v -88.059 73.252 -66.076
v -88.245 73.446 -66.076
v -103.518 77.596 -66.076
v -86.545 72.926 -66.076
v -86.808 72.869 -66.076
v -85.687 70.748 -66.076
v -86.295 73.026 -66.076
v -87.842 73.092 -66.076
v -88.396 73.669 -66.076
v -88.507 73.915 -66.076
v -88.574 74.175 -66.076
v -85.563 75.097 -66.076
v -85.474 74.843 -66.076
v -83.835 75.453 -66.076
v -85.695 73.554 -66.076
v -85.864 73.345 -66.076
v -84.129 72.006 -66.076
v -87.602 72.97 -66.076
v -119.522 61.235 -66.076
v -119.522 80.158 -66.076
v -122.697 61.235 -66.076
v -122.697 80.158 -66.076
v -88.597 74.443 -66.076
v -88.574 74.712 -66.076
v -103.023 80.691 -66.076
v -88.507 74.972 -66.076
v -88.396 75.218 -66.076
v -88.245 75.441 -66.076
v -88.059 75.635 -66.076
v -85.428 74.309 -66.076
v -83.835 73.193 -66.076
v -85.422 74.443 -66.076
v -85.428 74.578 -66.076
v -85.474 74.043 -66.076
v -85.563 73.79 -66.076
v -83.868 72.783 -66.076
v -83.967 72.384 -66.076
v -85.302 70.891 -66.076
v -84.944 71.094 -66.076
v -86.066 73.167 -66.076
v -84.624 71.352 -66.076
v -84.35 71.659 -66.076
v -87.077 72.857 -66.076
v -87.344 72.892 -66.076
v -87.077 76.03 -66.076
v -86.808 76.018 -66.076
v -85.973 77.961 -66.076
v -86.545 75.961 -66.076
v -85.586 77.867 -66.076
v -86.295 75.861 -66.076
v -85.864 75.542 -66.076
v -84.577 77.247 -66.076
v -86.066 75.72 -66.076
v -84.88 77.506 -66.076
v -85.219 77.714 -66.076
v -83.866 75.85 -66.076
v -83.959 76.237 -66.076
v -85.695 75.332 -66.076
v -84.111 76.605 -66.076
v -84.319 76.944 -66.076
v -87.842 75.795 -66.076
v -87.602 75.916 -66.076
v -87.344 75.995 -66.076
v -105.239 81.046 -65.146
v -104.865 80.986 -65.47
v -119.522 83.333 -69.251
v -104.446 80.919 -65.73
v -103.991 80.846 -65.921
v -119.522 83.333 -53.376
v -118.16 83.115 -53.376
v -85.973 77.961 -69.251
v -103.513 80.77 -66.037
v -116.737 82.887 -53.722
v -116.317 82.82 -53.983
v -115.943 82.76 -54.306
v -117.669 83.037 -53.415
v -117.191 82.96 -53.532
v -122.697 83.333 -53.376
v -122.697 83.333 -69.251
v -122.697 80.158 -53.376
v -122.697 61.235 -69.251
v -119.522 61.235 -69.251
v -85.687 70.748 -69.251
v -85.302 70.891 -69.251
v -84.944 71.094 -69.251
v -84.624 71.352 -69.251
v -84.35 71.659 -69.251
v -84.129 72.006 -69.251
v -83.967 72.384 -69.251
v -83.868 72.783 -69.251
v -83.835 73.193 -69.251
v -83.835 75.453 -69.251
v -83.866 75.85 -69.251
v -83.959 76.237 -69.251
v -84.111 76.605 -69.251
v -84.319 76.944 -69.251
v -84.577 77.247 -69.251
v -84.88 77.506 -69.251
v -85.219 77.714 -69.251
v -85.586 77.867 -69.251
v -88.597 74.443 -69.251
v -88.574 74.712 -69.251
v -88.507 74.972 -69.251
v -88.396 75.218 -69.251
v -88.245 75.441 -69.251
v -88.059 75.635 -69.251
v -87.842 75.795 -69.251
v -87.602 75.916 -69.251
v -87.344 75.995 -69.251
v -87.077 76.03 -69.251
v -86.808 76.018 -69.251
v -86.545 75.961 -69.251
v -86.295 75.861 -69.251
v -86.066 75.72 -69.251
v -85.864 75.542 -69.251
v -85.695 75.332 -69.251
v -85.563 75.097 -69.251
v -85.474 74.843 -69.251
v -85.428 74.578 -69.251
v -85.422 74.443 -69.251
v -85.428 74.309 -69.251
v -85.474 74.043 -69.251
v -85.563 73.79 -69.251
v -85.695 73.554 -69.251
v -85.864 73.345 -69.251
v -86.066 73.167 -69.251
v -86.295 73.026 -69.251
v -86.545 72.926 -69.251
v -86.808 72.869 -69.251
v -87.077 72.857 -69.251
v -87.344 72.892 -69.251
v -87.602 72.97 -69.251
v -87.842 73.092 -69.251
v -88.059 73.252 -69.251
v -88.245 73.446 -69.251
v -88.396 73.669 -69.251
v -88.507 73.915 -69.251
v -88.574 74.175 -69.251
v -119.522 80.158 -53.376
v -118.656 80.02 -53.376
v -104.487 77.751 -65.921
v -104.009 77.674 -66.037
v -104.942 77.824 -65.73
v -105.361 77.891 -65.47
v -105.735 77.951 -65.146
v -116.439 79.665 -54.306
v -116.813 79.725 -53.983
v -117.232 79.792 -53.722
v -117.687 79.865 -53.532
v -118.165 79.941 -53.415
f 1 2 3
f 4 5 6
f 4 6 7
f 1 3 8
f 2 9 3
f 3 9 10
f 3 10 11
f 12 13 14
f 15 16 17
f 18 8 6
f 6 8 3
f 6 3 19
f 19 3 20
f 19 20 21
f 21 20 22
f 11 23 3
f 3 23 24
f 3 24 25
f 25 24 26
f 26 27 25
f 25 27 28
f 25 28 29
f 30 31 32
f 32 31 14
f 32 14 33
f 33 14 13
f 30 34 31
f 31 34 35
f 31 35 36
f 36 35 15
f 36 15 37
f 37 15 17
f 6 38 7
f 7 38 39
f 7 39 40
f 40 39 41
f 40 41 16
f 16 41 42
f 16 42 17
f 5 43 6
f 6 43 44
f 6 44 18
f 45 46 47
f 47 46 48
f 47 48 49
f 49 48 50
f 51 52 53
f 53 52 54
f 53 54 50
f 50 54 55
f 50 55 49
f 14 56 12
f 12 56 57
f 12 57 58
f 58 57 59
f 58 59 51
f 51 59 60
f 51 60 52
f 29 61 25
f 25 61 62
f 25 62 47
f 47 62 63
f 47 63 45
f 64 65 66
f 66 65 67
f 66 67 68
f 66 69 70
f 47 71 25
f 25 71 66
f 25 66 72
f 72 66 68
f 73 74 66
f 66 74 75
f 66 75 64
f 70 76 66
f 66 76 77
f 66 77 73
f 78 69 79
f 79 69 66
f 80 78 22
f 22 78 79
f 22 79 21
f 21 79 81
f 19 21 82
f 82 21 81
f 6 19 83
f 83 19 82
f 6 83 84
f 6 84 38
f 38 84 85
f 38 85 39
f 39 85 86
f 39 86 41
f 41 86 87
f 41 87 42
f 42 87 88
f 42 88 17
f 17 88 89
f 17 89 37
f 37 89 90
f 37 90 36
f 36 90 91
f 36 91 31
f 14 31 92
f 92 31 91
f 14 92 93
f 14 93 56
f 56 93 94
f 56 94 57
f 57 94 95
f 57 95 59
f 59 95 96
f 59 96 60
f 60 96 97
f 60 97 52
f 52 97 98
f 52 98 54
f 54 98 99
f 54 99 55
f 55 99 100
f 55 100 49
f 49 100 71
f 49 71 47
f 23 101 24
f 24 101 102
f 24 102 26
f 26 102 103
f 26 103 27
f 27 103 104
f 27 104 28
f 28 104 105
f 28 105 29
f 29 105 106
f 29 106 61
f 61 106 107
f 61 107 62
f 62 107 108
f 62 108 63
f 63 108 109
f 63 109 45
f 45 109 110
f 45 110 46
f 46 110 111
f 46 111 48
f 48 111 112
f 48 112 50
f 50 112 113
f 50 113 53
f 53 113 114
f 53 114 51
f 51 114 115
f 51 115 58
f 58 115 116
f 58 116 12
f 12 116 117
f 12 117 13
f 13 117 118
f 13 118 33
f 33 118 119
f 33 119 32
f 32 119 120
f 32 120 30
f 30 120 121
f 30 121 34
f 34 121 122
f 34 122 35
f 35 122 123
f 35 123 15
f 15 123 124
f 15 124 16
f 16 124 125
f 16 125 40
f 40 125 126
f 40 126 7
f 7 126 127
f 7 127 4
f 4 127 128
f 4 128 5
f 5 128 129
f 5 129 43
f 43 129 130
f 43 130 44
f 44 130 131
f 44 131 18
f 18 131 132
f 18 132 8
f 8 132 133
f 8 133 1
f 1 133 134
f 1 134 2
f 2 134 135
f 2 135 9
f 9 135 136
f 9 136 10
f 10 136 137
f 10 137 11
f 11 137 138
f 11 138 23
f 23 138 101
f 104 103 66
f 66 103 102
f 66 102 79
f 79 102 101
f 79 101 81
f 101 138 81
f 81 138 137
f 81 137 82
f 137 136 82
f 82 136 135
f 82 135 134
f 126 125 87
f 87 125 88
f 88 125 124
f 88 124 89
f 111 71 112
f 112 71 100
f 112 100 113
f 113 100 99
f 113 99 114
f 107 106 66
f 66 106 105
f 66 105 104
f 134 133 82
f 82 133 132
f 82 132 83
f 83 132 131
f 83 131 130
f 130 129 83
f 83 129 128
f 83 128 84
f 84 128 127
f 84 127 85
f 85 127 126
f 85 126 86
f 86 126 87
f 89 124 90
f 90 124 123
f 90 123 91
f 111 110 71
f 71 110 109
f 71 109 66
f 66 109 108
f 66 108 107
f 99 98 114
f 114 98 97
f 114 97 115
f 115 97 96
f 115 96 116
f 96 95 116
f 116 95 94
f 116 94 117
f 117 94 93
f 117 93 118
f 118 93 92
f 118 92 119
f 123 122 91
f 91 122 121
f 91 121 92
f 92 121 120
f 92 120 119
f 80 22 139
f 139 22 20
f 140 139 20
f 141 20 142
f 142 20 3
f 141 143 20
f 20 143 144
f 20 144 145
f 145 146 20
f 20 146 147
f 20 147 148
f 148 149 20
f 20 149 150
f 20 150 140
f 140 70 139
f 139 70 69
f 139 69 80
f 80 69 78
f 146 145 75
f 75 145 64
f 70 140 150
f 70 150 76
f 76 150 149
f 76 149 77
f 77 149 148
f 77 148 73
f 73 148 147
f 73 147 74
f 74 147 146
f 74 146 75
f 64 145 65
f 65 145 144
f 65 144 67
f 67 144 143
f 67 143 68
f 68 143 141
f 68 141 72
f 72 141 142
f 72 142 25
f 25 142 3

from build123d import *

# Parameters (mm, degrees)
SKETCH1_R           = 1.5875
BOSS_EXTRUDE1_DEPTH = 3.175
BOSS_EXTRUDE2_DEPTH = 12.7
CHAMFER1_SIZE       = 13.716
FILLET1_R           = 3.175


with BuildPart() as part:
    # Sketch1 → Boss-Extrude1 (new body)
    with BuildSketch(Plane.XY.offset(-69.251165667)):
        with BuildLine():
            Line((-122.696825859, 83.333454018), (-119.521825859, 83.333454018))
            Line((-119.521825859, 83.333454018), (-85.973181885, 77.960895375))
            ThreePointArc((-85.973181885, 77.960895375), (-84.441981363, 77.100793683), (-83.834825859, 75.45285189))
            Line((-83.834825859, 75.45285189), (-83.834825859, 73.192832287))
            ThreePointArc((-83.834825859, 73.192832287), (-84.350263921, 71.658964965), (-85.687384095, 70.747628037))
            Line((-85.687384095, 70.747628037), (-119.521825859, 61.235454018))
            Line((-119.521825859, 61.235454018), (-122.696825859, 61.235454018))
            Line((-122.696825859, 61.235454018), (-122.696825859, 83.333454018))
        make_face()
        with Locations((-87.009825859, 74.443454018)):
            Circle(SKETCH1_R, mode=Mode.SUBTRACT)
    extrude(amount=BOSS_EXTRUDE1_DEPTH)

    # Sketch2 → Boss-Extrude2 (add)
    with BuildSketch(Plane.XY.offset(-66.076165667)):
        Polygon((-103.813644634, 77.642908982), (-103.317906173, 80.738520261), (-119.521825859, 83.333454018), (-122.696825859, 83.333454018), (-122.696825859, 80.158454018), (-119.521825859, 80.158454018), align=None)
    extrude(amount=BOSS_EXTRUDE2_DEPTH)

    # Chamfer1
    # the kernel refuses this chamfer: 13.716 mm, written as the material it takes off along each edge
    with BuildSketch(Plane(origin=(-109.391309905, 42.813488073, -53.376165667), x_dir=(0.02714994258719934, -0.004347855574462481, -0.9996219169112966), z_dir=(0.15812754894268197, 0.987418694508758, 0))) as chamfer1_piece_1_section:
        Polygon((CHAMFER1_SIZE * 0.999621916911, CHAMFER1_SIZE * 0.0274958766106), (-CHAMFER1_SIZE * 0.0274958766106, CHAMFER1_SIZE * 0.999621916911), (0, 0), align=None)
    chamfer1_piece_1 = extrude(amount=73.681462081, mode=Mode.PRIVATE)
    chamfer1_piece_1 = split(chamfer1_piece_1, bisect_by=Plane(origin=(-108.089526316, 79.915158718, -66.076165667), z_dir=(0, 0, 1)), keep=Keep.TOP, mode=Mode.PRIVATE)
    add(chamfer1_piece_1, mode=Mode.SUBTRACT)

    # Fillet1
    fillet1_edges = [part.edges().sort_by_distance(p)[0] for p in [
        (-117.109210218, 81.359592083, -53.376165667),
        (-104.568992798, 79.351372211, -66.076165667),
    ]]
    fillet(fillet1_edges, radius=FILLET1_R)


solid = part.part
